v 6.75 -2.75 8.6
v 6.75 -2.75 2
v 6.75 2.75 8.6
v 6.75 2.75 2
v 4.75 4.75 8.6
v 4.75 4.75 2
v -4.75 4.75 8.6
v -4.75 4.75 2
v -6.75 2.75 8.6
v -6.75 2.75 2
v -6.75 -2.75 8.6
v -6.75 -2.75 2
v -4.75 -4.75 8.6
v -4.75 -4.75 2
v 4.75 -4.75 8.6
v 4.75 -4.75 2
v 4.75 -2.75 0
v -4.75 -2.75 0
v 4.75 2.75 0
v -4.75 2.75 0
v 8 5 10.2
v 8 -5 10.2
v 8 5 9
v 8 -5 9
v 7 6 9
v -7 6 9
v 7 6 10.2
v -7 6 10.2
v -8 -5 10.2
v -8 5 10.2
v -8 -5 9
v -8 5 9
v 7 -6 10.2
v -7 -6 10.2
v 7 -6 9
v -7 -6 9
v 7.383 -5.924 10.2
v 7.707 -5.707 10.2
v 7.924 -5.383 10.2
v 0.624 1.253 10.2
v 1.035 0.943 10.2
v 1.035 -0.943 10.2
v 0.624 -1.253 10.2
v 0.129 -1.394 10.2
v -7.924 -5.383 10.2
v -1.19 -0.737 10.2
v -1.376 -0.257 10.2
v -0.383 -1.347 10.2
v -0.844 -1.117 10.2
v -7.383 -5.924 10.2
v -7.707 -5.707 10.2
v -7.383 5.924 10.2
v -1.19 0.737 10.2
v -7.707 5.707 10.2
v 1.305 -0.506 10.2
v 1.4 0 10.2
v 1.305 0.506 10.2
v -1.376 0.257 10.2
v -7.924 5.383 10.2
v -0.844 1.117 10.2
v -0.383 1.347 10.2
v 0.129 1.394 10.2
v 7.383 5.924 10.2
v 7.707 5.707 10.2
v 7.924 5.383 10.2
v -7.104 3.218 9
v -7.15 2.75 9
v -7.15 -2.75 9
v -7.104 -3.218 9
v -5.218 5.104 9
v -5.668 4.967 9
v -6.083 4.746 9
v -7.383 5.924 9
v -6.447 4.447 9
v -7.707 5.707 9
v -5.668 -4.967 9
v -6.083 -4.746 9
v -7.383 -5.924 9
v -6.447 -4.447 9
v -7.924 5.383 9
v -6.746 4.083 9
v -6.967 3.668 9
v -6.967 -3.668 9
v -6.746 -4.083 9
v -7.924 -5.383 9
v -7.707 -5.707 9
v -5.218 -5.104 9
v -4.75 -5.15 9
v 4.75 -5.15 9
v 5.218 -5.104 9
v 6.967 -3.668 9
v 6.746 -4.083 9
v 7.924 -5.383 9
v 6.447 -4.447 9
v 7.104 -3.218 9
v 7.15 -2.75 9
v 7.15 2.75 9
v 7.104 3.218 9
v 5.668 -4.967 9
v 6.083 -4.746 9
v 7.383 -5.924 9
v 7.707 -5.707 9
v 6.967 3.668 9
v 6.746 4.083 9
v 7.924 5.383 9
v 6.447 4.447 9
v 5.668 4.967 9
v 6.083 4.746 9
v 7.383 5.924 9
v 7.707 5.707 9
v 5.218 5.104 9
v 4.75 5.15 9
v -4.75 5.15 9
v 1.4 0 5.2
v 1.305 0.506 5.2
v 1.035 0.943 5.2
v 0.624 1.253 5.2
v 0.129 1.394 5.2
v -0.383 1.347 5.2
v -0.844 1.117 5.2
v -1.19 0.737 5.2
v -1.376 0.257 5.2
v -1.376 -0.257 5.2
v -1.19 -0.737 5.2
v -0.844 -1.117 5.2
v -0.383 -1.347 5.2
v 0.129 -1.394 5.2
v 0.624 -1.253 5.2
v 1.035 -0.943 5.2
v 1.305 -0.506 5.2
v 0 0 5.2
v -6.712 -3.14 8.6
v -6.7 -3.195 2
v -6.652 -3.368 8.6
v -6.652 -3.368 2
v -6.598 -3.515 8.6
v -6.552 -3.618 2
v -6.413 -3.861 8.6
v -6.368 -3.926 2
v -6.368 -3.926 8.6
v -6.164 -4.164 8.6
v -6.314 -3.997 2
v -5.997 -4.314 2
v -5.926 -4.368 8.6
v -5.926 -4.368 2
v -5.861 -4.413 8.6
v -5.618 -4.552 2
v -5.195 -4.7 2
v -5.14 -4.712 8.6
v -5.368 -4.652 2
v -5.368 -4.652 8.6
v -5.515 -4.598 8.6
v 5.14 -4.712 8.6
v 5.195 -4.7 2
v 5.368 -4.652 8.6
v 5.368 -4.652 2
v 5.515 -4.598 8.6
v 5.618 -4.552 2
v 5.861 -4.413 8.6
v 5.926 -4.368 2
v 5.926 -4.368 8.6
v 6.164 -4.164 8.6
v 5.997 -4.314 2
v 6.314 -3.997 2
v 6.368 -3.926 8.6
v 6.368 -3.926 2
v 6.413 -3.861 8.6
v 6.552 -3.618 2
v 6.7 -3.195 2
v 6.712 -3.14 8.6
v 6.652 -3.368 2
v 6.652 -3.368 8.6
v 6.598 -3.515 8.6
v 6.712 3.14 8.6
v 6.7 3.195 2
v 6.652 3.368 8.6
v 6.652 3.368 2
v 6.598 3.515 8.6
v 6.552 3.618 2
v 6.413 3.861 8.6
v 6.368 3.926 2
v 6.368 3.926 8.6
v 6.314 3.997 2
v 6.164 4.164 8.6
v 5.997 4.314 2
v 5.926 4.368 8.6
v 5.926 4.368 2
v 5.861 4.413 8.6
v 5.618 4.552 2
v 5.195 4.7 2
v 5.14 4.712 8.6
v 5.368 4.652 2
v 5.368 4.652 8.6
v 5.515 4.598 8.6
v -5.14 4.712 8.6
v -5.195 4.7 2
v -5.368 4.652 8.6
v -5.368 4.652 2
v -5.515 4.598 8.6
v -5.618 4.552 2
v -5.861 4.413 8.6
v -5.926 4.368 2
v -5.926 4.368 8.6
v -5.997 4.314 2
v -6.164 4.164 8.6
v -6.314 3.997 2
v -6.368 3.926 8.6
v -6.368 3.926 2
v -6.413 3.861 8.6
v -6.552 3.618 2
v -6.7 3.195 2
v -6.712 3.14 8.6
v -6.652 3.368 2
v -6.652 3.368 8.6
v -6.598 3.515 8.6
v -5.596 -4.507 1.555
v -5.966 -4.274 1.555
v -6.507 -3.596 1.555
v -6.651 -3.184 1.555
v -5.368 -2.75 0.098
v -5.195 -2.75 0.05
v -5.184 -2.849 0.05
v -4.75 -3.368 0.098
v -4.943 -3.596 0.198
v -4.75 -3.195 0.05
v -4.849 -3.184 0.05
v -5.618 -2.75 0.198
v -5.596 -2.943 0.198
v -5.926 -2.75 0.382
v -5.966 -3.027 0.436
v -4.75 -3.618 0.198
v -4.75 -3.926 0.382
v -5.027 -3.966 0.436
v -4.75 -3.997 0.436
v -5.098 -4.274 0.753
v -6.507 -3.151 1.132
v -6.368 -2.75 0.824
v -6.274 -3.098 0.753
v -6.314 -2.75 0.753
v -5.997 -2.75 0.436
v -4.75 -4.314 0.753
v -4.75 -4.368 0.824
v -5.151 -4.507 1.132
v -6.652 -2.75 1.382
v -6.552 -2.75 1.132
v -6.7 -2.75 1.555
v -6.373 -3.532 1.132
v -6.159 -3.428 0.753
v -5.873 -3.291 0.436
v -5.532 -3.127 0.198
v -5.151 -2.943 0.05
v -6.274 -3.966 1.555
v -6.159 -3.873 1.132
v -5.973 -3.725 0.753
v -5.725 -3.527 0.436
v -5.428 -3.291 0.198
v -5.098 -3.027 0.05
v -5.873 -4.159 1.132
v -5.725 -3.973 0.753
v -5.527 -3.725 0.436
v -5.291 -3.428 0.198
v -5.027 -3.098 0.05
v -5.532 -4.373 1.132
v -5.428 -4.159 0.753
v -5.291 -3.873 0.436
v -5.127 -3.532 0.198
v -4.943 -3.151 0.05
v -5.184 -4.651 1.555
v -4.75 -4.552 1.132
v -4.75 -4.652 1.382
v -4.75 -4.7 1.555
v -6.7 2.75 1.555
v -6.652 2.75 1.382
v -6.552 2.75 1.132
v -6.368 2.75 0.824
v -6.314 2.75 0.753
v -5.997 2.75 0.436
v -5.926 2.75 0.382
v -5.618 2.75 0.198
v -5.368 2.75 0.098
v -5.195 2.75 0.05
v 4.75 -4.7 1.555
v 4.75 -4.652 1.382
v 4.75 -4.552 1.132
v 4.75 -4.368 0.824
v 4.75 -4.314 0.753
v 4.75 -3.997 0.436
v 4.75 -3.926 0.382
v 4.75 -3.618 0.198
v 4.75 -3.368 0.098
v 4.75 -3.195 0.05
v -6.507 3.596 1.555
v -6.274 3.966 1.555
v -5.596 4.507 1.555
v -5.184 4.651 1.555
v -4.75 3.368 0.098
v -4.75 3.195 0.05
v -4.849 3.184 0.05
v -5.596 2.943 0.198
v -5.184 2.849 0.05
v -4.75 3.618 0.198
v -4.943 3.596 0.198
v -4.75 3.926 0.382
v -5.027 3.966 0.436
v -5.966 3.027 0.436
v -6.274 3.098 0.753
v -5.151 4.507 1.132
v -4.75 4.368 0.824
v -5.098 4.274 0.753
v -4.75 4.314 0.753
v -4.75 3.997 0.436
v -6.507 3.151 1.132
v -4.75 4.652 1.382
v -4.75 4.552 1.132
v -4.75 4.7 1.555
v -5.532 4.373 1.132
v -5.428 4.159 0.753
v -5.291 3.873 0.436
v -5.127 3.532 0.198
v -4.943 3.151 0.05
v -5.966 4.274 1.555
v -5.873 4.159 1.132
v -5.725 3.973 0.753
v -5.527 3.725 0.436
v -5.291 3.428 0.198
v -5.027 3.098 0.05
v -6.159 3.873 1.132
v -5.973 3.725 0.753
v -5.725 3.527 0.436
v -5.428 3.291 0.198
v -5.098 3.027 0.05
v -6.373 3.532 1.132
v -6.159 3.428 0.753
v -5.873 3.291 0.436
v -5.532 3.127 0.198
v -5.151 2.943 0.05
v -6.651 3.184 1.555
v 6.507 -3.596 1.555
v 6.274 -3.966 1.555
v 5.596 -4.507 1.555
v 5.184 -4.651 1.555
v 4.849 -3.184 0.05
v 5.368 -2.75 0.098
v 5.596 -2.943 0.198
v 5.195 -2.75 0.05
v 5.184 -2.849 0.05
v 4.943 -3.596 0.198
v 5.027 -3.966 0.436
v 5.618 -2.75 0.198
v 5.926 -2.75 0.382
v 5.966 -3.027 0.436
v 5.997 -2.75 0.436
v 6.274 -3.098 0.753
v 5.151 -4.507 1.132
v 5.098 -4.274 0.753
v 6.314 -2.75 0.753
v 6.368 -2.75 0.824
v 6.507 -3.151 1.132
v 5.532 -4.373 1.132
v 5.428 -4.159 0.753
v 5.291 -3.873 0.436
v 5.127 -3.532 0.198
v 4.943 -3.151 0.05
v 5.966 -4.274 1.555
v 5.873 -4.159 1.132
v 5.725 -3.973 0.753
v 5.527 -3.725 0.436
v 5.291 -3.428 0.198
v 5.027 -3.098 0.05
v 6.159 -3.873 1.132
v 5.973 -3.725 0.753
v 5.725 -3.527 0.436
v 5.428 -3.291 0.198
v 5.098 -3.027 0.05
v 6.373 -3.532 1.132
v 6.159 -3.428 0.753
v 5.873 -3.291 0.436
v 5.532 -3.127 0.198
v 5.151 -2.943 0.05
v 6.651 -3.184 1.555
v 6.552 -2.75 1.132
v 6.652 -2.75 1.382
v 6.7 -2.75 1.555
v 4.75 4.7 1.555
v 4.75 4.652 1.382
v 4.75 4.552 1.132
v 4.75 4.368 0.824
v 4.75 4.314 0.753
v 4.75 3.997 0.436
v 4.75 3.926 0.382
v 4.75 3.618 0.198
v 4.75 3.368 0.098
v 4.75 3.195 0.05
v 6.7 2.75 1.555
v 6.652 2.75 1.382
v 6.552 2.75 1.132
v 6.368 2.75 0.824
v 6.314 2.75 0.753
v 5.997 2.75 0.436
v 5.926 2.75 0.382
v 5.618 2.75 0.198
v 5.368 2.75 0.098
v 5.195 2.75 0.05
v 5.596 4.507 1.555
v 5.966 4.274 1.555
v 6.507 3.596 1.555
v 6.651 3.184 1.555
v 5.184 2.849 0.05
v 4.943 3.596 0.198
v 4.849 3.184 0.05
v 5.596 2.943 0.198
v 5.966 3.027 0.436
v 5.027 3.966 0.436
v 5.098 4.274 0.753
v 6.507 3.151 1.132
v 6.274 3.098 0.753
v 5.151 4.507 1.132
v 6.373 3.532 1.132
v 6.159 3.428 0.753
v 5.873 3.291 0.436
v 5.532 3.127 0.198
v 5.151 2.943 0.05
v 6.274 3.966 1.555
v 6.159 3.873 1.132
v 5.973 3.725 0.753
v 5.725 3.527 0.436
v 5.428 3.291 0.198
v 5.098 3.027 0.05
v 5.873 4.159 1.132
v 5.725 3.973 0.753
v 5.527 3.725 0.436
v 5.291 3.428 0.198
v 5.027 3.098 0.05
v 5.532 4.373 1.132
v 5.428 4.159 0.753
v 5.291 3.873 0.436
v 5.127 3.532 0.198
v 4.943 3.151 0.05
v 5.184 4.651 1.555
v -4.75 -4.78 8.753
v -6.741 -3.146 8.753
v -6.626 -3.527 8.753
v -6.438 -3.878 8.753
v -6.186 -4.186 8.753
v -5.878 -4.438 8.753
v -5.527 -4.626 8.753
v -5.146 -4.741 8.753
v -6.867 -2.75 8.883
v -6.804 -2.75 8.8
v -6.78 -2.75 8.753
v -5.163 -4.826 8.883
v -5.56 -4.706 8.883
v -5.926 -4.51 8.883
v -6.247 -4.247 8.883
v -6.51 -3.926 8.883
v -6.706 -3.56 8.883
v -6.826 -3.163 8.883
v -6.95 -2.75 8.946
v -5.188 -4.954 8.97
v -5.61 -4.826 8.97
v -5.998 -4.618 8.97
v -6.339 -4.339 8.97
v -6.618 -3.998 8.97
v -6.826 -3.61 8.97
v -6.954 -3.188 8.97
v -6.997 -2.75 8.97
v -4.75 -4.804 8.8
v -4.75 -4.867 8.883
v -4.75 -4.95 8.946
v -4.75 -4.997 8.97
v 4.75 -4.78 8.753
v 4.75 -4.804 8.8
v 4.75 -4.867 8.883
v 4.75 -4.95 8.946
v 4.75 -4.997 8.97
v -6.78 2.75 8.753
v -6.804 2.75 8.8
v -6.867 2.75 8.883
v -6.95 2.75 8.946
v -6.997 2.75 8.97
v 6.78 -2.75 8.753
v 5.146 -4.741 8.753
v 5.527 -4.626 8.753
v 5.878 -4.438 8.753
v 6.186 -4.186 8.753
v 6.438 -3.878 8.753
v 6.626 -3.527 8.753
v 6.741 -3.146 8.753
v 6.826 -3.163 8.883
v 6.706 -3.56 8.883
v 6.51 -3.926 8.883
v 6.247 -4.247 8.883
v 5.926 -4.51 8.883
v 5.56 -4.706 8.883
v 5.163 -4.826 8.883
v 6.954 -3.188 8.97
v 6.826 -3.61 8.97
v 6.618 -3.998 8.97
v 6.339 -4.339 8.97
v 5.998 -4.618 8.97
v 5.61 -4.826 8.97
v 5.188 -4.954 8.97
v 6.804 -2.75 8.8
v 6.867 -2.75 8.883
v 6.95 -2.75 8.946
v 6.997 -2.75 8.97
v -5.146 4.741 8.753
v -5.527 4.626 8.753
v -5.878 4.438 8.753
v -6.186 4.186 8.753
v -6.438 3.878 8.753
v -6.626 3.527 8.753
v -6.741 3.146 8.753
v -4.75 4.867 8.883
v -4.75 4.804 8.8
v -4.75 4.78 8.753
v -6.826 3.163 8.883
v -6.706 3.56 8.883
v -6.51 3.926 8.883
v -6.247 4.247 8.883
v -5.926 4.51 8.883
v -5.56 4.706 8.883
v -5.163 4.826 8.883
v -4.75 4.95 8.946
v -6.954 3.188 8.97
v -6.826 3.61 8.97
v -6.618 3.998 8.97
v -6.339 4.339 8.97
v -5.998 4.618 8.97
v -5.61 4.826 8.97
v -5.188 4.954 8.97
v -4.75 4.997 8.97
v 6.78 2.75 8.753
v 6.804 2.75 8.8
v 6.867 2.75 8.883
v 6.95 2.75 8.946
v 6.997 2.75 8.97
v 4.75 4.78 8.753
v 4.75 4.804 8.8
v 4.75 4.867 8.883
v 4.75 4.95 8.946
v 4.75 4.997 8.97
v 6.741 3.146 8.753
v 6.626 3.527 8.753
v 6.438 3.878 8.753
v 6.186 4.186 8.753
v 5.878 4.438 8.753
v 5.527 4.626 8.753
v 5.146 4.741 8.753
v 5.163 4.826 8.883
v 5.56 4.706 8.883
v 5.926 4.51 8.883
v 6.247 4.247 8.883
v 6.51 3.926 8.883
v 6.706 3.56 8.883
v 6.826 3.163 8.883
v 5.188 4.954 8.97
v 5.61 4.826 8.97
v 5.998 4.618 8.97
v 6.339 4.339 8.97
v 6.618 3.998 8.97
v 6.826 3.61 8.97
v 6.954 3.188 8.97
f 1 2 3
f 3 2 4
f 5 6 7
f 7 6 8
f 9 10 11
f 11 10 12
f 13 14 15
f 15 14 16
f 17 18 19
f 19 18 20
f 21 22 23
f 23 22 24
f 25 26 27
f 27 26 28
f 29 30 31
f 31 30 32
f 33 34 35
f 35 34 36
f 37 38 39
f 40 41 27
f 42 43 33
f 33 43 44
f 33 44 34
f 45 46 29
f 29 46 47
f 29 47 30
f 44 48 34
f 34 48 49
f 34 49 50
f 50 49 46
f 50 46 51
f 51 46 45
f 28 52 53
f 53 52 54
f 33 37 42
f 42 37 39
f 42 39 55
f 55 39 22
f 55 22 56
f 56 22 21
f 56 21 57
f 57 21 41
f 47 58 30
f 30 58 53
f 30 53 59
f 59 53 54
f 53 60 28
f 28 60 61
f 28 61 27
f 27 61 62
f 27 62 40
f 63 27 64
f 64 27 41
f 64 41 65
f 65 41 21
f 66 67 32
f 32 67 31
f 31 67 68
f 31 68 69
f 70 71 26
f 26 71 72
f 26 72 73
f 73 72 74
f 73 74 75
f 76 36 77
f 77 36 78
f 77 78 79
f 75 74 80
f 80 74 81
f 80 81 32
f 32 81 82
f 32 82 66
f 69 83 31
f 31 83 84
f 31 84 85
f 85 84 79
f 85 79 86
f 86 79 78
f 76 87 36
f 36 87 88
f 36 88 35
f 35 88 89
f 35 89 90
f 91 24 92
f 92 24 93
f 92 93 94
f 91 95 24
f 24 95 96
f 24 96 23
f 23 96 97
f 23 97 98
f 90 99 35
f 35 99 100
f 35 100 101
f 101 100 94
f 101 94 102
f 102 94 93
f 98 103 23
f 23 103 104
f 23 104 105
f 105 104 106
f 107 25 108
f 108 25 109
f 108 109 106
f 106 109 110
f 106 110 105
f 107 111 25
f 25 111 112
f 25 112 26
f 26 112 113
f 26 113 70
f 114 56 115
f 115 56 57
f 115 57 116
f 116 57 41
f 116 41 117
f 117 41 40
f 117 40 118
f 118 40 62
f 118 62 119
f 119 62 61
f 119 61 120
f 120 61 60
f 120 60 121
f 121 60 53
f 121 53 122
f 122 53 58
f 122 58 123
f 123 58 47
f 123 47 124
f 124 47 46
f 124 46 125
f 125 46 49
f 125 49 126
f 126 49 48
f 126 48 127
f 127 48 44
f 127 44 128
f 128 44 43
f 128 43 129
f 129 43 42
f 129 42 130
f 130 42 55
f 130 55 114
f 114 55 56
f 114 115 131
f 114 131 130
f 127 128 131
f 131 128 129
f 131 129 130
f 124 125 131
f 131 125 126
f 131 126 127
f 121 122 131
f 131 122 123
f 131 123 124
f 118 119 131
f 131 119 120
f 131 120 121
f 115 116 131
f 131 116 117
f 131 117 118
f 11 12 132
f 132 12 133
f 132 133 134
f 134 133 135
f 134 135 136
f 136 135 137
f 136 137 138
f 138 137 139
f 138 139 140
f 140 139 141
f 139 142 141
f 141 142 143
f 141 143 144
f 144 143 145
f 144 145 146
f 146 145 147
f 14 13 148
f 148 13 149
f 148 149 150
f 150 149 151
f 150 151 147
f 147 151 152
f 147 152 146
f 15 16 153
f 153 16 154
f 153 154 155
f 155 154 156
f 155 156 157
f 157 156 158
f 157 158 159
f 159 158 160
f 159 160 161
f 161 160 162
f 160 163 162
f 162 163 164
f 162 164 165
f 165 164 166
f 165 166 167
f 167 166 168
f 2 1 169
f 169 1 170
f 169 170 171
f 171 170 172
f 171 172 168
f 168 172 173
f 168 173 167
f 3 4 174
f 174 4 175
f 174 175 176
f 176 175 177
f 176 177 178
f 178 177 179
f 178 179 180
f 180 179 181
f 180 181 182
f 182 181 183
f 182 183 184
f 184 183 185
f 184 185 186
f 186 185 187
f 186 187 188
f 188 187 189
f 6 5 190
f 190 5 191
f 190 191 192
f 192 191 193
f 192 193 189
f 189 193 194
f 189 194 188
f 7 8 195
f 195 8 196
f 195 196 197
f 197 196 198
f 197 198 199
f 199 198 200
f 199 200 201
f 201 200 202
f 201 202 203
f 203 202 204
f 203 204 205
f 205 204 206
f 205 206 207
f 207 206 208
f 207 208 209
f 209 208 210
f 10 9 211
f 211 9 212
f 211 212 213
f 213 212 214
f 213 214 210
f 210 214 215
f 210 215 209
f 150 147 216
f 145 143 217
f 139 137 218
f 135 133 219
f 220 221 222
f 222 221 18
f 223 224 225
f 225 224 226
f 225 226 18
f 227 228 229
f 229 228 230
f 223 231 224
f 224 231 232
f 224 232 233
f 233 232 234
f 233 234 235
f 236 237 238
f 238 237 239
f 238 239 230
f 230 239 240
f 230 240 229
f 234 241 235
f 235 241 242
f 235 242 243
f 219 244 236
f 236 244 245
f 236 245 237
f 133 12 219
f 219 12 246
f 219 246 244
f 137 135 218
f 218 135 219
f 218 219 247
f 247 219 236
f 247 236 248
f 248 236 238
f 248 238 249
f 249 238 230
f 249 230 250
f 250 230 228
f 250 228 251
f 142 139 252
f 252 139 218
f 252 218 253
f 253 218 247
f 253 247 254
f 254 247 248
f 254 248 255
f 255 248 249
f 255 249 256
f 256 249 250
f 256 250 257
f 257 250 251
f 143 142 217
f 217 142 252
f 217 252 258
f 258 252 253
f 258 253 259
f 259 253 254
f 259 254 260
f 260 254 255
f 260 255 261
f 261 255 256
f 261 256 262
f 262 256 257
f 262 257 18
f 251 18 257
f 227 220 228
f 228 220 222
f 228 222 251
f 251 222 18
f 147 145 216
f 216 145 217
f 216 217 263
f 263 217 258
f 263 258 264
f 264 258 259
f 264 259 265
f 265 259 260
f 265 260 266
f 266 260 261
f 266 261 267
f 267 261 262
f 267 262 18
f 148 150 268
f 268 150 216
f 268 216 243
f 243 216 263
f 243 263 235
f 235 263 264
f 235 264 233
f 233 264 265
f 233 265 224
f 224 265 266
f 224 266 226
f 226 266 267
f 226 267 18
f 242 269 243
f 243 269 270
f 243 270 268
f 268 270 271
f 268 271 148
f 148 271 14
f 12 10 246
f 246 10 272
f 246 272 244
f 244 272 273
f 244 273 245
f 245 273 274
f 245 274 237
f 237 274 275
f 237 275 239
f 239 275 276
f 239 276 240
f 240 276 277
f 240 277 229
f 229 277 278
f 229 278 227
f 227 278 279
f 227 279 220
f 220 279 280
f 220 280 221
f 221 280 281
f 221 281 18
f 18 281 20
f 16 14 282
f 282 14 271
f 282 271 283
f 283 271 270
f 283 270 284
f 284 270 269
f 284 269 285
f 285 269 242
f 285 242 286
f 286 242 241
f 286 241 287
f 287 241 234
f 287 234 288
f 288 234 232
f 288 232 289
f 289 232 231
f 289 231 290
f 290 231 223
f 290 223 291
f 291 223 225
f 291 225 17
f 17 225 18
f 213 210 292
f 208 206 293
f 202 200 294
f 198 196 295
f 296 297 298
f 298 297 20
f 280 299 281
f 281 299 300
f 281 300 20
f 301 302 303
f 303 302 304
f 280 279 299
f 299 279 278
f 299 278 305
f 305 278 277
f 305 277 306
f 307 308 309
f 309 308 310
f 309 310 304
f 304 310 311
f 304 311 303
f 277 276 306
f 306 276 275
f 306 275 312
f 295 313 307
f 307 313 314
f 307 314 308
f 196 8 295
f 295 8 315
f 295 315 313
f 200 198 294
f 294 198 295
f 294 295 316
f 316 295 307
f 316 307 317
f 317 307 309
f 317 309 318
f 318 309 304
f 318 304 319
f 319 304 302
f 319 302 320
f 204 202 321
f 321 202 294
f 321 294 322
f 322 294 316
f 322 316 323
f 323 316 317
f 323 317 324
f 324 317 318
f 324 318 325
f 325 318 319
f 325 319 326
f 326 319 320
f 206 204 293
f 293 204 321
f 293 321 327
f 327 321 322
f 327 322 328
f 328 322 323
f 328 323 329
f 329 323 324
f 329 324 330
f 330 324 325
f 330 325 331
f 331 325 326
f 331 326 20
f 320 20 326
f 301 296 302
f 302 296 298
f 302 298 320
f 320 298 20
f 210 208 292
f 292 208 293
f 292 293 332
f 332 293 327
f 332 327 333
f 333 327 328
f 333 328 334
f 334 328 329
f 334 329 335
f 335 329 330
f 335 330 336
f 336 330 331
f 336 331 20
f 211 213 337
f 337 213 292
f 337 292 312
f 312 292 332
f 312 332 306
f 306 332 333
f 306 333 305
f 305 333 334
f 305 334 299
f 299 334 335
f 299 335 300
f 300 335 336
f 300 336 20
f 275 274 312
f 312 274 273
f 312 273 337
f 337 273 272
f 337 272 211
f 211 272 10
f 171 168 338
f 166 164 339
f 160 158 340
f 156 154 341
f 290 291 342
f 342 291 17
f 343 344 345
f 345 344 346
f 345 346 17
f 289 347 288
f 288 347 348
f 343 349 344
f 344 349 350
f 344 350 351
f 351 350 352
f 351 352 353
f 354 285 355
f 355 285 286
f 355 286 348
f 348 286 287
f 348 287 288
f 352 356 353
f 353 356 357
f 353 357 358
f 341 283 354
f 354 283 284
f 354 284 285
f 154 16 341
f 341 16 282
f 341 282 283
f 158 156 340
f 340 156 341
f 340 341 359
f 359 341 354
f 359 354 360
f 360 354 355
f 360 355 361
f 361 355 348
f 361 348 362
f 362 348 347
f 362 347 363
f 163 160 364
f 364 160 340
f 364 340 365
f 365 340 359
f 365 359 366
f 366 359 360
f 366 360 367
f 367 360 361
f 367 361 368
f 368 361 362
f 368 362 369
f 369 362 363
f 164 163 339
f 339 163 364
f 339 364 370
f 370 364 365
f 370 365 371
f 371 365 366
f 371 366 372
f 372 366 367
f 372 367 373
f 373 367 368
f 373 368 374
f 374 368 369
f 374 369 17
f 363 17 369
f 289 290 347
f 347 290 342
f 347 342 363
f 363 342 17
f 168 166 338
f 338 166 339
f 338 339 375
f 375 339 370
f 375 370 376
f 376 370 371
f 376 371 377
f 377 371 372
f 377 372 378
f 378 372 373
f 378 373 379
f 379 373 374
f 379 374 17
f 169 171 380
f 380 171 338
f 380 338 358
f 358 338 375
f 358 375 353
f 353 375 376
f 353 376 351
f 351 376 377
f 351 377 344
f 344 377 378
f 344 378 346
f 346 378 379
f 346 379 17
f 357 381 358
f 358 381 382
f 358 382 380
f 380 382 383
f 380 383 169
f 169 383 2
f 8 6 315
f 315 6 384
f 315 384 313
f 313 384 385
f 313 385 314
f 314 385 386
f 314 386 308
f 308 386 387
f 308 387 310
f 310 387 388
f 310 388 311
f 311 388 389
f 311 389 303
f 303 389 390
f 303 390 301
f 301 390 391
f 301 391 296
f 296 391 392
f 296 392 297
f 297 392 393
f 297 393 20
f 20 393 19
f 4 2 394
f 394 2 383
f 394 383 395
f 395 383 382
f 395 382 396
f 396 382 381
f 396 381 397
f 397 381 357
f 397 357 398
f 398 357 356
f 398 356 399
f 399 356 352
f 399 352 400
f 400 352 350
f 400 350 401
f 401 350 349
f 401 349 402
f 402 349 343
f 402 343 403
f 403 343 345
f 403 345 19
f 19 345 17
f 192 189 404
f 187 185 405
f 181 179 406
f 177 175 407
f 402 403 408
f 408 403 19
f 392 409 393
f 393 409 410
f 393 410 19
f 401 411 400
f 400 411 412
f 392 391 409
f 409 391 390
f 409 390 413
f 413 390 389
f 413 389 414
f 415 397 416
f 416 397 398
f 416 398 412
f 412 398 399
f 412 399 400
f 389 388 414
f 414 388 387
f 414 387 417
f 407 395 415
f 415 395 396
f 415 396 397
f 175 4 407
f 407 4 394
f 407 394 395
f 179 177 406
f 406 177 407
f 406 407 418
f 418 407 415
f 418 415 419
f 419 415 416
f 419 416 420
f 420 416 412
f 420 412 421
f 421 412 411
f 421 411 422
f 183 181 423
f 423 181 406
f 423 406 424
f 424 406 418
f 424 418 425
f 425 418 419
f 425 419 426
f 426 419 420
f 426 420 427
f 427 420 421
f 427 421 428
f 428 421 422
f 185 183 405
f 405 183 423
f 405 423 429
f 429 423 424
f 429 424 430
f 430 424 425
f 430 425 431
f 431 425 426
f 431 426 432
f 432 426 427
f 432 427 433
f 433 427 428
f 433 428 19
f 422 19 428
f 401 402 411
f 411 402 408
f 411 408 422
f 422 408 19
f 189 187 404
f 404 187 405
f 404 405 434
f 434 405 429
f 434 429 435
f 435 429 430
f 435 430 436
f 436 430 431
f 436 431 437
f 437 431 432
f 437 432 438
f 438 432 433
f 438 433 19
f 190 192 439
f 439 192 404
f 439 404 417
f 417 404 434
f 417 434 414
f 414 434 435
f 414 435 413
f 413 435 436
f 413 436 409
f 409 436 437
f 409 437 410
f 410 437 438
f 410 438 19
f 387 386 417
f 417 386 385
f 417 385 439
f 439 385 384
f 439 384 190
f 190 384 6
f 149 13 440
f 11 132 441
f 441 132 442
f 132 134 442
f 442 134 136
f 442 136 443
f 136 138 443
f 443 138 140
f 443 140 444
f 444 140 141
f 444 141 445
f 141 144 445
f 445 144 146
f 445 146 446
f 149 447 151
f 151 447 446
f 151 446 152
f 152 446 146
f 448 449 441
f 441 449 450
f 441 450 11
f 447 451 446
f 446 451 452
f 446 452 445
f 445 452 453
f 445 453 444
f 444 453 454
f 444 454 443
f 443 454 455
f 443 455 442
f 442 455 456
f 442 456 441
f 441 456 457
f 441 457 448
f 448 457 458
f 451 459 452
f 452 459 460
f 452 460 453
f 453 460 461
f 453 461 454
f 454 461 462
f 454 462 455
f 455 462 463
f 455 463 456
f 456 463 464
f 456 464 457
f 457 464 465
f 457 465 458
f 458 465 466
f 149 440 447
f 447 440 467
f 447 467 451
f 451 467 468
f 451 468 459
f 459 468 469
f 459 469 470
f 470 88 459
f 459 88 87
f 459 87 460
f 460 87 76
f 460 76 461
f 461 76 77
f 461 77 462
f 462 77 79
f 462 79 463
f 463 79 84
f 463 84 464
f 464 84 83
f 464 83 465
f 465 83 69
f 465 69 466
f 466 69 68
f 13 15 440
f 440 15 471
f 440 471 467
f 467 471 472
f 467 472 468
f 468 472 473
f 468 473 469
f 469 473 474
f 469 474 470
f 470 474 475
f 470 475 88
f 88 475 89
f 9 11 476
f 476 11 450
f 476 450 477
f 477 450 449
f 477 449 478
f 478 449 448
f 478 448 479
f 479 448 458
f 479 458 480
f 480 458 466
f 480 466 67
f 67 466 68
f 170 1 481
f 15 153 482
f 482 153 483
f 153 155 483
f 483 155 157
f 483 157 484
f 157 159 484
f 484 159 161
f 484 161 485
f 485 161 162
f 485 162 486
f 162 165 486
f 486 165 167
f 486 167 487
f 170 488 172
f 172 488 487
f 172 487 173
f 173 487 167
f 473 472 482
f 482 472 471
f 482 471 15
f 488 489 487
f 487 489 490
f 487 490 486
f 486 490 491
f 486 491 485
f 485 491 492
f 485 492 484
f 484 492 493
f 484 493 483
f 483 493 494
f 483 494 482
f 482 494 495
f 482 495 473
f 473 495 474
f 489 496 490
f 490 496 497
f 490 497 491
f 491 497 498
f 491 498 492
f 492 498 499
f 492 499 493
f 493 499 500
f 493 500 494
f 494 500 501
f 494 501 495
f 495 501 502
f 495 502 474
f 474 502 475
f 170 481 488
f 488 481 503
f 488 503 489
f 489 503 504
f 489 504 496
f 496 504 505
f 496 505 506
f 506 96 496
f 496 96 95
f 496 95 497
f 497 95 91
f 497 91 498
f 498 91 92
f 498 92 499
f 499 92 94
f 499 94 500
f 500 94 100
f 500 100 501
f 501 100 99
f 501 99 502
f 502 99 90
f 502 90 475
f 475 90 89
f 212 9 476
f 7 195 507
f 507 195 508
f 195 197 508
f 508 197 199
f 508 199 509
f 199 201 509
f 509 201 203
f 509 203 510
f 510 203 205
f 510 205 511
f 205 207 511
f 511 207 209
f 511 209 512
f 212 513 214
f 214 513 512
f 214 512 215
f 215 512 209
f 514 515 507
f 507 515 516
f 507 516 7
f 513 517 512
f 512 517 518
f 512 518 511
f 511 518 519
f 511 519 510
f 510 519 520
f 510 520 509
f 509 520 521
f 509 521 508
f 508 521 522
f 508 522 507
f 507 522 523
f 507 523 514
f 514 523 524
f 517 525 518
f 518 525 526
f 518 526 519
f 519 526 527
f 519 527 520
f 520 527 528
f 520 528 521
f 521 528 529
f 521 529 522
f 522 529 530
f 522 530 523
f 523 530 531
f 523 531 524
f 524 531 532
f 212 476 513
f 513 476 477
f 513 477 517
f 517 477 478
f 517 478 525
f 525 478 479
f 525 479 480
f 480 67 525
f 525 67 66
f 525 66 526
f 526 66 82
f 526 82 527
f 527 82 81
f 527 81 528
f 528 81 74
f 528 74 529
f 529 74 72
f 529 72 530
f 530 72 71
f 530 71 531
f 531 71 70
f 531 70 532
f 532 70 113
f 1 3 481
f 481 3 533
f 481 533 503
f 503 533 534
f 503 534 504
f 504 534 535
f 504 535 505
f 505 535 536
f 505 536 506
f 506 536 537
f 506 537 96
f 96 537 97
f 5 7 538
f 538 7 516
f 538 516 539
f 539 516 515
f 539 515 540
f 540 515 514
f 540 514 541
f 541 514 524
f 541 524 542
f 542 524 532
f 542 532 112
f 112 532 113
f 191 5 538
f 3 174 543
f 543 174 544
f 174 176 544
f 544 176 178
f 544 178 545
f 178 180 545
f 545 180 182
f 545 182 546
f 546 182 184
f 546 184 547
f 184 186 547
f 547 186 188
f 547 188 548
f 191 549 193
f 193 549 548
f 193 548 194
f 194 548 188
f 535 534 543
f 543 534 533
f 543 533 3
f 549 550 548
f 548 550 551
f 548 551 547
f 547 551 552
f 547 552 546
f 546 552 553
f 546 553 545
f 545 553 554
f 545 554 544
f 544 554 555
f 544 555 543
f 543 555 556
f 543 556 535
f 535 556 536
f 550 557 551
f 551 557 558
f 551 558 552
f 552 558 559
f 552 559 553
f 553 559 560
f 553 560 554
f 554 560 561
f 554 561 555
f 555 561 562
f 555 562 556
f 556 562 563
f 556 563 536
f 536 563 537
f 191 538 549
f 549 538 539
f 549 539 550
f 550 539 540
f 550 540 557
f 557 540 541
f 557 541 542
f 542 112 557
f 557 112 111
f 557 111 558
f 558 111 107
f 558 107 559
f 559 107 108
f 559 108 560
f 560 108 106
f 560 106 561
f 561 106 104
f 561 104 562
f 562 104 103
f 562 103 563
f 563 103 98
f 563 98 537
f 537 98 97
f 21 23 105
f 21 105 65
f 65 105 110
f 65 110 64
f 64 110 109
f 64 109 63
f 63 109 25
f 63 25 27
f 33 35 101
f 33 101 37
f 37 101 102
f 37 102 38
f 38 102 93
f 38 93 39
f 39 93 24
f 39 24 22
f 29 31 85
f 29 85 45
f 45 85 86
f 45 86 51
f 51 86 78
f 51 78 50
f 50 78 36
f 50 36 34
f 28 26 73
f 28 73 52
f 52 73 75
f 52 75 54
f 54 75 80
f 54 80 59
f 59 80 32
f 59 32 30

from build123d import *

# Parameters (mm, degrees)
SKETCH1_W           = 13.5
SKETCH1_H           = 9.5
BOSS_EXTRUDE1_DEPTH = 9
SKETCH2_W           = 16
SKETCH2_H           = 12
BOSS_EXTRUDE2_DEPTH = 1.2
SKETCH3_R           = 1.4
CUT_EXTRUDE1_DEPTH  = 5
FILLET1_R           = 2
FILLET2_R           = 2
FILLET3_R           = 0.4
FILLET4_R           = 1


with BuildPart() as part:
    # Sketch1 → Boss-Extrude1 (new body)
    with BuildSketch(Plane.XY):
        Rectangle(SKETCH1_W, SKETCH1_H)
    extrude(amount=BOSS_EXTRUDE1_DEPTH)

    # Sketch2 → Boss-Extrude2 (add)
    with BuildSketch(Plane.XY.offset(9)):
        Rectangle(SKETCH2_W, SKETCH2_H)
    extrude(amount=BOSS_EXTRUDE2_DEPTH)

    # Sketch3 → Cut-Extrude1 (cut)
    with BuildSketch(Plane.XY.offset(10.2)):
        Circle(SKETCH3_R)
    extrude(amount=-CUT_EXTRUDE1_DEPTH, mode=Mode.SUBTRACT)

    # Fillet1
    fillet1_edges = [part.edges().sort_by_distance(p)[0] for p in [
        (6.75, -4.75, 4.5),
        (-6.75, -4.75, 4.5),
        (-6.75, 4.75, 4.5),
        (6.75, 4.75, 4.5),
    ]]
    fillet(fillet1_edges, radius=FILLET1_R)

    # Fillet2
    fillet2_edges = [part.edges().sort_by_distance(p)[0] for p in [
        (0, -4.75, 0),
        (6.75, 0, 0),
        (-6.75, 0, 0),
        (0, 4.75, 0),
        (-6.164213562, 4.164213562, 0),
        (6.164213562, 4.164213562, 0),
        (6.164213562, -4.164213562, 0),
        (-6.164213562, -4.164213562, 0),
    ]]
    fillet(fillet2_edges, radius=FILLET2_R)

    # Fillet3
    fillet3_edges = [part.edges().sort_by_distance(p)[0] for p in [
        (0, -4.75, 9),
        (-6.75, 0, 9),
        (6.75, 0, 9),
        (0, 4.75, 9),
        (-6.164213562, -4.164213562, 9),
        (6.164213562, -4.164213562, 9),
        (6.164213562, 4.164213562, 9),
        (-6.164213562, 4.164213562, 9),
    ]]
    fillet(fillet3_edges, radius=FILLET3_R)

    # Fillet4
    fillet4_edges = [part.edges().sort_by_distance(p)[0] for p in [
        (8, -6, 9.6),
        (8, 6, 9.6),
        (-8, 6, 9.6),
        (-8, -6, 9.6),
    ]]
    fillet(fillet4_edges, radius=FILLET4_R)


solid = part.part
